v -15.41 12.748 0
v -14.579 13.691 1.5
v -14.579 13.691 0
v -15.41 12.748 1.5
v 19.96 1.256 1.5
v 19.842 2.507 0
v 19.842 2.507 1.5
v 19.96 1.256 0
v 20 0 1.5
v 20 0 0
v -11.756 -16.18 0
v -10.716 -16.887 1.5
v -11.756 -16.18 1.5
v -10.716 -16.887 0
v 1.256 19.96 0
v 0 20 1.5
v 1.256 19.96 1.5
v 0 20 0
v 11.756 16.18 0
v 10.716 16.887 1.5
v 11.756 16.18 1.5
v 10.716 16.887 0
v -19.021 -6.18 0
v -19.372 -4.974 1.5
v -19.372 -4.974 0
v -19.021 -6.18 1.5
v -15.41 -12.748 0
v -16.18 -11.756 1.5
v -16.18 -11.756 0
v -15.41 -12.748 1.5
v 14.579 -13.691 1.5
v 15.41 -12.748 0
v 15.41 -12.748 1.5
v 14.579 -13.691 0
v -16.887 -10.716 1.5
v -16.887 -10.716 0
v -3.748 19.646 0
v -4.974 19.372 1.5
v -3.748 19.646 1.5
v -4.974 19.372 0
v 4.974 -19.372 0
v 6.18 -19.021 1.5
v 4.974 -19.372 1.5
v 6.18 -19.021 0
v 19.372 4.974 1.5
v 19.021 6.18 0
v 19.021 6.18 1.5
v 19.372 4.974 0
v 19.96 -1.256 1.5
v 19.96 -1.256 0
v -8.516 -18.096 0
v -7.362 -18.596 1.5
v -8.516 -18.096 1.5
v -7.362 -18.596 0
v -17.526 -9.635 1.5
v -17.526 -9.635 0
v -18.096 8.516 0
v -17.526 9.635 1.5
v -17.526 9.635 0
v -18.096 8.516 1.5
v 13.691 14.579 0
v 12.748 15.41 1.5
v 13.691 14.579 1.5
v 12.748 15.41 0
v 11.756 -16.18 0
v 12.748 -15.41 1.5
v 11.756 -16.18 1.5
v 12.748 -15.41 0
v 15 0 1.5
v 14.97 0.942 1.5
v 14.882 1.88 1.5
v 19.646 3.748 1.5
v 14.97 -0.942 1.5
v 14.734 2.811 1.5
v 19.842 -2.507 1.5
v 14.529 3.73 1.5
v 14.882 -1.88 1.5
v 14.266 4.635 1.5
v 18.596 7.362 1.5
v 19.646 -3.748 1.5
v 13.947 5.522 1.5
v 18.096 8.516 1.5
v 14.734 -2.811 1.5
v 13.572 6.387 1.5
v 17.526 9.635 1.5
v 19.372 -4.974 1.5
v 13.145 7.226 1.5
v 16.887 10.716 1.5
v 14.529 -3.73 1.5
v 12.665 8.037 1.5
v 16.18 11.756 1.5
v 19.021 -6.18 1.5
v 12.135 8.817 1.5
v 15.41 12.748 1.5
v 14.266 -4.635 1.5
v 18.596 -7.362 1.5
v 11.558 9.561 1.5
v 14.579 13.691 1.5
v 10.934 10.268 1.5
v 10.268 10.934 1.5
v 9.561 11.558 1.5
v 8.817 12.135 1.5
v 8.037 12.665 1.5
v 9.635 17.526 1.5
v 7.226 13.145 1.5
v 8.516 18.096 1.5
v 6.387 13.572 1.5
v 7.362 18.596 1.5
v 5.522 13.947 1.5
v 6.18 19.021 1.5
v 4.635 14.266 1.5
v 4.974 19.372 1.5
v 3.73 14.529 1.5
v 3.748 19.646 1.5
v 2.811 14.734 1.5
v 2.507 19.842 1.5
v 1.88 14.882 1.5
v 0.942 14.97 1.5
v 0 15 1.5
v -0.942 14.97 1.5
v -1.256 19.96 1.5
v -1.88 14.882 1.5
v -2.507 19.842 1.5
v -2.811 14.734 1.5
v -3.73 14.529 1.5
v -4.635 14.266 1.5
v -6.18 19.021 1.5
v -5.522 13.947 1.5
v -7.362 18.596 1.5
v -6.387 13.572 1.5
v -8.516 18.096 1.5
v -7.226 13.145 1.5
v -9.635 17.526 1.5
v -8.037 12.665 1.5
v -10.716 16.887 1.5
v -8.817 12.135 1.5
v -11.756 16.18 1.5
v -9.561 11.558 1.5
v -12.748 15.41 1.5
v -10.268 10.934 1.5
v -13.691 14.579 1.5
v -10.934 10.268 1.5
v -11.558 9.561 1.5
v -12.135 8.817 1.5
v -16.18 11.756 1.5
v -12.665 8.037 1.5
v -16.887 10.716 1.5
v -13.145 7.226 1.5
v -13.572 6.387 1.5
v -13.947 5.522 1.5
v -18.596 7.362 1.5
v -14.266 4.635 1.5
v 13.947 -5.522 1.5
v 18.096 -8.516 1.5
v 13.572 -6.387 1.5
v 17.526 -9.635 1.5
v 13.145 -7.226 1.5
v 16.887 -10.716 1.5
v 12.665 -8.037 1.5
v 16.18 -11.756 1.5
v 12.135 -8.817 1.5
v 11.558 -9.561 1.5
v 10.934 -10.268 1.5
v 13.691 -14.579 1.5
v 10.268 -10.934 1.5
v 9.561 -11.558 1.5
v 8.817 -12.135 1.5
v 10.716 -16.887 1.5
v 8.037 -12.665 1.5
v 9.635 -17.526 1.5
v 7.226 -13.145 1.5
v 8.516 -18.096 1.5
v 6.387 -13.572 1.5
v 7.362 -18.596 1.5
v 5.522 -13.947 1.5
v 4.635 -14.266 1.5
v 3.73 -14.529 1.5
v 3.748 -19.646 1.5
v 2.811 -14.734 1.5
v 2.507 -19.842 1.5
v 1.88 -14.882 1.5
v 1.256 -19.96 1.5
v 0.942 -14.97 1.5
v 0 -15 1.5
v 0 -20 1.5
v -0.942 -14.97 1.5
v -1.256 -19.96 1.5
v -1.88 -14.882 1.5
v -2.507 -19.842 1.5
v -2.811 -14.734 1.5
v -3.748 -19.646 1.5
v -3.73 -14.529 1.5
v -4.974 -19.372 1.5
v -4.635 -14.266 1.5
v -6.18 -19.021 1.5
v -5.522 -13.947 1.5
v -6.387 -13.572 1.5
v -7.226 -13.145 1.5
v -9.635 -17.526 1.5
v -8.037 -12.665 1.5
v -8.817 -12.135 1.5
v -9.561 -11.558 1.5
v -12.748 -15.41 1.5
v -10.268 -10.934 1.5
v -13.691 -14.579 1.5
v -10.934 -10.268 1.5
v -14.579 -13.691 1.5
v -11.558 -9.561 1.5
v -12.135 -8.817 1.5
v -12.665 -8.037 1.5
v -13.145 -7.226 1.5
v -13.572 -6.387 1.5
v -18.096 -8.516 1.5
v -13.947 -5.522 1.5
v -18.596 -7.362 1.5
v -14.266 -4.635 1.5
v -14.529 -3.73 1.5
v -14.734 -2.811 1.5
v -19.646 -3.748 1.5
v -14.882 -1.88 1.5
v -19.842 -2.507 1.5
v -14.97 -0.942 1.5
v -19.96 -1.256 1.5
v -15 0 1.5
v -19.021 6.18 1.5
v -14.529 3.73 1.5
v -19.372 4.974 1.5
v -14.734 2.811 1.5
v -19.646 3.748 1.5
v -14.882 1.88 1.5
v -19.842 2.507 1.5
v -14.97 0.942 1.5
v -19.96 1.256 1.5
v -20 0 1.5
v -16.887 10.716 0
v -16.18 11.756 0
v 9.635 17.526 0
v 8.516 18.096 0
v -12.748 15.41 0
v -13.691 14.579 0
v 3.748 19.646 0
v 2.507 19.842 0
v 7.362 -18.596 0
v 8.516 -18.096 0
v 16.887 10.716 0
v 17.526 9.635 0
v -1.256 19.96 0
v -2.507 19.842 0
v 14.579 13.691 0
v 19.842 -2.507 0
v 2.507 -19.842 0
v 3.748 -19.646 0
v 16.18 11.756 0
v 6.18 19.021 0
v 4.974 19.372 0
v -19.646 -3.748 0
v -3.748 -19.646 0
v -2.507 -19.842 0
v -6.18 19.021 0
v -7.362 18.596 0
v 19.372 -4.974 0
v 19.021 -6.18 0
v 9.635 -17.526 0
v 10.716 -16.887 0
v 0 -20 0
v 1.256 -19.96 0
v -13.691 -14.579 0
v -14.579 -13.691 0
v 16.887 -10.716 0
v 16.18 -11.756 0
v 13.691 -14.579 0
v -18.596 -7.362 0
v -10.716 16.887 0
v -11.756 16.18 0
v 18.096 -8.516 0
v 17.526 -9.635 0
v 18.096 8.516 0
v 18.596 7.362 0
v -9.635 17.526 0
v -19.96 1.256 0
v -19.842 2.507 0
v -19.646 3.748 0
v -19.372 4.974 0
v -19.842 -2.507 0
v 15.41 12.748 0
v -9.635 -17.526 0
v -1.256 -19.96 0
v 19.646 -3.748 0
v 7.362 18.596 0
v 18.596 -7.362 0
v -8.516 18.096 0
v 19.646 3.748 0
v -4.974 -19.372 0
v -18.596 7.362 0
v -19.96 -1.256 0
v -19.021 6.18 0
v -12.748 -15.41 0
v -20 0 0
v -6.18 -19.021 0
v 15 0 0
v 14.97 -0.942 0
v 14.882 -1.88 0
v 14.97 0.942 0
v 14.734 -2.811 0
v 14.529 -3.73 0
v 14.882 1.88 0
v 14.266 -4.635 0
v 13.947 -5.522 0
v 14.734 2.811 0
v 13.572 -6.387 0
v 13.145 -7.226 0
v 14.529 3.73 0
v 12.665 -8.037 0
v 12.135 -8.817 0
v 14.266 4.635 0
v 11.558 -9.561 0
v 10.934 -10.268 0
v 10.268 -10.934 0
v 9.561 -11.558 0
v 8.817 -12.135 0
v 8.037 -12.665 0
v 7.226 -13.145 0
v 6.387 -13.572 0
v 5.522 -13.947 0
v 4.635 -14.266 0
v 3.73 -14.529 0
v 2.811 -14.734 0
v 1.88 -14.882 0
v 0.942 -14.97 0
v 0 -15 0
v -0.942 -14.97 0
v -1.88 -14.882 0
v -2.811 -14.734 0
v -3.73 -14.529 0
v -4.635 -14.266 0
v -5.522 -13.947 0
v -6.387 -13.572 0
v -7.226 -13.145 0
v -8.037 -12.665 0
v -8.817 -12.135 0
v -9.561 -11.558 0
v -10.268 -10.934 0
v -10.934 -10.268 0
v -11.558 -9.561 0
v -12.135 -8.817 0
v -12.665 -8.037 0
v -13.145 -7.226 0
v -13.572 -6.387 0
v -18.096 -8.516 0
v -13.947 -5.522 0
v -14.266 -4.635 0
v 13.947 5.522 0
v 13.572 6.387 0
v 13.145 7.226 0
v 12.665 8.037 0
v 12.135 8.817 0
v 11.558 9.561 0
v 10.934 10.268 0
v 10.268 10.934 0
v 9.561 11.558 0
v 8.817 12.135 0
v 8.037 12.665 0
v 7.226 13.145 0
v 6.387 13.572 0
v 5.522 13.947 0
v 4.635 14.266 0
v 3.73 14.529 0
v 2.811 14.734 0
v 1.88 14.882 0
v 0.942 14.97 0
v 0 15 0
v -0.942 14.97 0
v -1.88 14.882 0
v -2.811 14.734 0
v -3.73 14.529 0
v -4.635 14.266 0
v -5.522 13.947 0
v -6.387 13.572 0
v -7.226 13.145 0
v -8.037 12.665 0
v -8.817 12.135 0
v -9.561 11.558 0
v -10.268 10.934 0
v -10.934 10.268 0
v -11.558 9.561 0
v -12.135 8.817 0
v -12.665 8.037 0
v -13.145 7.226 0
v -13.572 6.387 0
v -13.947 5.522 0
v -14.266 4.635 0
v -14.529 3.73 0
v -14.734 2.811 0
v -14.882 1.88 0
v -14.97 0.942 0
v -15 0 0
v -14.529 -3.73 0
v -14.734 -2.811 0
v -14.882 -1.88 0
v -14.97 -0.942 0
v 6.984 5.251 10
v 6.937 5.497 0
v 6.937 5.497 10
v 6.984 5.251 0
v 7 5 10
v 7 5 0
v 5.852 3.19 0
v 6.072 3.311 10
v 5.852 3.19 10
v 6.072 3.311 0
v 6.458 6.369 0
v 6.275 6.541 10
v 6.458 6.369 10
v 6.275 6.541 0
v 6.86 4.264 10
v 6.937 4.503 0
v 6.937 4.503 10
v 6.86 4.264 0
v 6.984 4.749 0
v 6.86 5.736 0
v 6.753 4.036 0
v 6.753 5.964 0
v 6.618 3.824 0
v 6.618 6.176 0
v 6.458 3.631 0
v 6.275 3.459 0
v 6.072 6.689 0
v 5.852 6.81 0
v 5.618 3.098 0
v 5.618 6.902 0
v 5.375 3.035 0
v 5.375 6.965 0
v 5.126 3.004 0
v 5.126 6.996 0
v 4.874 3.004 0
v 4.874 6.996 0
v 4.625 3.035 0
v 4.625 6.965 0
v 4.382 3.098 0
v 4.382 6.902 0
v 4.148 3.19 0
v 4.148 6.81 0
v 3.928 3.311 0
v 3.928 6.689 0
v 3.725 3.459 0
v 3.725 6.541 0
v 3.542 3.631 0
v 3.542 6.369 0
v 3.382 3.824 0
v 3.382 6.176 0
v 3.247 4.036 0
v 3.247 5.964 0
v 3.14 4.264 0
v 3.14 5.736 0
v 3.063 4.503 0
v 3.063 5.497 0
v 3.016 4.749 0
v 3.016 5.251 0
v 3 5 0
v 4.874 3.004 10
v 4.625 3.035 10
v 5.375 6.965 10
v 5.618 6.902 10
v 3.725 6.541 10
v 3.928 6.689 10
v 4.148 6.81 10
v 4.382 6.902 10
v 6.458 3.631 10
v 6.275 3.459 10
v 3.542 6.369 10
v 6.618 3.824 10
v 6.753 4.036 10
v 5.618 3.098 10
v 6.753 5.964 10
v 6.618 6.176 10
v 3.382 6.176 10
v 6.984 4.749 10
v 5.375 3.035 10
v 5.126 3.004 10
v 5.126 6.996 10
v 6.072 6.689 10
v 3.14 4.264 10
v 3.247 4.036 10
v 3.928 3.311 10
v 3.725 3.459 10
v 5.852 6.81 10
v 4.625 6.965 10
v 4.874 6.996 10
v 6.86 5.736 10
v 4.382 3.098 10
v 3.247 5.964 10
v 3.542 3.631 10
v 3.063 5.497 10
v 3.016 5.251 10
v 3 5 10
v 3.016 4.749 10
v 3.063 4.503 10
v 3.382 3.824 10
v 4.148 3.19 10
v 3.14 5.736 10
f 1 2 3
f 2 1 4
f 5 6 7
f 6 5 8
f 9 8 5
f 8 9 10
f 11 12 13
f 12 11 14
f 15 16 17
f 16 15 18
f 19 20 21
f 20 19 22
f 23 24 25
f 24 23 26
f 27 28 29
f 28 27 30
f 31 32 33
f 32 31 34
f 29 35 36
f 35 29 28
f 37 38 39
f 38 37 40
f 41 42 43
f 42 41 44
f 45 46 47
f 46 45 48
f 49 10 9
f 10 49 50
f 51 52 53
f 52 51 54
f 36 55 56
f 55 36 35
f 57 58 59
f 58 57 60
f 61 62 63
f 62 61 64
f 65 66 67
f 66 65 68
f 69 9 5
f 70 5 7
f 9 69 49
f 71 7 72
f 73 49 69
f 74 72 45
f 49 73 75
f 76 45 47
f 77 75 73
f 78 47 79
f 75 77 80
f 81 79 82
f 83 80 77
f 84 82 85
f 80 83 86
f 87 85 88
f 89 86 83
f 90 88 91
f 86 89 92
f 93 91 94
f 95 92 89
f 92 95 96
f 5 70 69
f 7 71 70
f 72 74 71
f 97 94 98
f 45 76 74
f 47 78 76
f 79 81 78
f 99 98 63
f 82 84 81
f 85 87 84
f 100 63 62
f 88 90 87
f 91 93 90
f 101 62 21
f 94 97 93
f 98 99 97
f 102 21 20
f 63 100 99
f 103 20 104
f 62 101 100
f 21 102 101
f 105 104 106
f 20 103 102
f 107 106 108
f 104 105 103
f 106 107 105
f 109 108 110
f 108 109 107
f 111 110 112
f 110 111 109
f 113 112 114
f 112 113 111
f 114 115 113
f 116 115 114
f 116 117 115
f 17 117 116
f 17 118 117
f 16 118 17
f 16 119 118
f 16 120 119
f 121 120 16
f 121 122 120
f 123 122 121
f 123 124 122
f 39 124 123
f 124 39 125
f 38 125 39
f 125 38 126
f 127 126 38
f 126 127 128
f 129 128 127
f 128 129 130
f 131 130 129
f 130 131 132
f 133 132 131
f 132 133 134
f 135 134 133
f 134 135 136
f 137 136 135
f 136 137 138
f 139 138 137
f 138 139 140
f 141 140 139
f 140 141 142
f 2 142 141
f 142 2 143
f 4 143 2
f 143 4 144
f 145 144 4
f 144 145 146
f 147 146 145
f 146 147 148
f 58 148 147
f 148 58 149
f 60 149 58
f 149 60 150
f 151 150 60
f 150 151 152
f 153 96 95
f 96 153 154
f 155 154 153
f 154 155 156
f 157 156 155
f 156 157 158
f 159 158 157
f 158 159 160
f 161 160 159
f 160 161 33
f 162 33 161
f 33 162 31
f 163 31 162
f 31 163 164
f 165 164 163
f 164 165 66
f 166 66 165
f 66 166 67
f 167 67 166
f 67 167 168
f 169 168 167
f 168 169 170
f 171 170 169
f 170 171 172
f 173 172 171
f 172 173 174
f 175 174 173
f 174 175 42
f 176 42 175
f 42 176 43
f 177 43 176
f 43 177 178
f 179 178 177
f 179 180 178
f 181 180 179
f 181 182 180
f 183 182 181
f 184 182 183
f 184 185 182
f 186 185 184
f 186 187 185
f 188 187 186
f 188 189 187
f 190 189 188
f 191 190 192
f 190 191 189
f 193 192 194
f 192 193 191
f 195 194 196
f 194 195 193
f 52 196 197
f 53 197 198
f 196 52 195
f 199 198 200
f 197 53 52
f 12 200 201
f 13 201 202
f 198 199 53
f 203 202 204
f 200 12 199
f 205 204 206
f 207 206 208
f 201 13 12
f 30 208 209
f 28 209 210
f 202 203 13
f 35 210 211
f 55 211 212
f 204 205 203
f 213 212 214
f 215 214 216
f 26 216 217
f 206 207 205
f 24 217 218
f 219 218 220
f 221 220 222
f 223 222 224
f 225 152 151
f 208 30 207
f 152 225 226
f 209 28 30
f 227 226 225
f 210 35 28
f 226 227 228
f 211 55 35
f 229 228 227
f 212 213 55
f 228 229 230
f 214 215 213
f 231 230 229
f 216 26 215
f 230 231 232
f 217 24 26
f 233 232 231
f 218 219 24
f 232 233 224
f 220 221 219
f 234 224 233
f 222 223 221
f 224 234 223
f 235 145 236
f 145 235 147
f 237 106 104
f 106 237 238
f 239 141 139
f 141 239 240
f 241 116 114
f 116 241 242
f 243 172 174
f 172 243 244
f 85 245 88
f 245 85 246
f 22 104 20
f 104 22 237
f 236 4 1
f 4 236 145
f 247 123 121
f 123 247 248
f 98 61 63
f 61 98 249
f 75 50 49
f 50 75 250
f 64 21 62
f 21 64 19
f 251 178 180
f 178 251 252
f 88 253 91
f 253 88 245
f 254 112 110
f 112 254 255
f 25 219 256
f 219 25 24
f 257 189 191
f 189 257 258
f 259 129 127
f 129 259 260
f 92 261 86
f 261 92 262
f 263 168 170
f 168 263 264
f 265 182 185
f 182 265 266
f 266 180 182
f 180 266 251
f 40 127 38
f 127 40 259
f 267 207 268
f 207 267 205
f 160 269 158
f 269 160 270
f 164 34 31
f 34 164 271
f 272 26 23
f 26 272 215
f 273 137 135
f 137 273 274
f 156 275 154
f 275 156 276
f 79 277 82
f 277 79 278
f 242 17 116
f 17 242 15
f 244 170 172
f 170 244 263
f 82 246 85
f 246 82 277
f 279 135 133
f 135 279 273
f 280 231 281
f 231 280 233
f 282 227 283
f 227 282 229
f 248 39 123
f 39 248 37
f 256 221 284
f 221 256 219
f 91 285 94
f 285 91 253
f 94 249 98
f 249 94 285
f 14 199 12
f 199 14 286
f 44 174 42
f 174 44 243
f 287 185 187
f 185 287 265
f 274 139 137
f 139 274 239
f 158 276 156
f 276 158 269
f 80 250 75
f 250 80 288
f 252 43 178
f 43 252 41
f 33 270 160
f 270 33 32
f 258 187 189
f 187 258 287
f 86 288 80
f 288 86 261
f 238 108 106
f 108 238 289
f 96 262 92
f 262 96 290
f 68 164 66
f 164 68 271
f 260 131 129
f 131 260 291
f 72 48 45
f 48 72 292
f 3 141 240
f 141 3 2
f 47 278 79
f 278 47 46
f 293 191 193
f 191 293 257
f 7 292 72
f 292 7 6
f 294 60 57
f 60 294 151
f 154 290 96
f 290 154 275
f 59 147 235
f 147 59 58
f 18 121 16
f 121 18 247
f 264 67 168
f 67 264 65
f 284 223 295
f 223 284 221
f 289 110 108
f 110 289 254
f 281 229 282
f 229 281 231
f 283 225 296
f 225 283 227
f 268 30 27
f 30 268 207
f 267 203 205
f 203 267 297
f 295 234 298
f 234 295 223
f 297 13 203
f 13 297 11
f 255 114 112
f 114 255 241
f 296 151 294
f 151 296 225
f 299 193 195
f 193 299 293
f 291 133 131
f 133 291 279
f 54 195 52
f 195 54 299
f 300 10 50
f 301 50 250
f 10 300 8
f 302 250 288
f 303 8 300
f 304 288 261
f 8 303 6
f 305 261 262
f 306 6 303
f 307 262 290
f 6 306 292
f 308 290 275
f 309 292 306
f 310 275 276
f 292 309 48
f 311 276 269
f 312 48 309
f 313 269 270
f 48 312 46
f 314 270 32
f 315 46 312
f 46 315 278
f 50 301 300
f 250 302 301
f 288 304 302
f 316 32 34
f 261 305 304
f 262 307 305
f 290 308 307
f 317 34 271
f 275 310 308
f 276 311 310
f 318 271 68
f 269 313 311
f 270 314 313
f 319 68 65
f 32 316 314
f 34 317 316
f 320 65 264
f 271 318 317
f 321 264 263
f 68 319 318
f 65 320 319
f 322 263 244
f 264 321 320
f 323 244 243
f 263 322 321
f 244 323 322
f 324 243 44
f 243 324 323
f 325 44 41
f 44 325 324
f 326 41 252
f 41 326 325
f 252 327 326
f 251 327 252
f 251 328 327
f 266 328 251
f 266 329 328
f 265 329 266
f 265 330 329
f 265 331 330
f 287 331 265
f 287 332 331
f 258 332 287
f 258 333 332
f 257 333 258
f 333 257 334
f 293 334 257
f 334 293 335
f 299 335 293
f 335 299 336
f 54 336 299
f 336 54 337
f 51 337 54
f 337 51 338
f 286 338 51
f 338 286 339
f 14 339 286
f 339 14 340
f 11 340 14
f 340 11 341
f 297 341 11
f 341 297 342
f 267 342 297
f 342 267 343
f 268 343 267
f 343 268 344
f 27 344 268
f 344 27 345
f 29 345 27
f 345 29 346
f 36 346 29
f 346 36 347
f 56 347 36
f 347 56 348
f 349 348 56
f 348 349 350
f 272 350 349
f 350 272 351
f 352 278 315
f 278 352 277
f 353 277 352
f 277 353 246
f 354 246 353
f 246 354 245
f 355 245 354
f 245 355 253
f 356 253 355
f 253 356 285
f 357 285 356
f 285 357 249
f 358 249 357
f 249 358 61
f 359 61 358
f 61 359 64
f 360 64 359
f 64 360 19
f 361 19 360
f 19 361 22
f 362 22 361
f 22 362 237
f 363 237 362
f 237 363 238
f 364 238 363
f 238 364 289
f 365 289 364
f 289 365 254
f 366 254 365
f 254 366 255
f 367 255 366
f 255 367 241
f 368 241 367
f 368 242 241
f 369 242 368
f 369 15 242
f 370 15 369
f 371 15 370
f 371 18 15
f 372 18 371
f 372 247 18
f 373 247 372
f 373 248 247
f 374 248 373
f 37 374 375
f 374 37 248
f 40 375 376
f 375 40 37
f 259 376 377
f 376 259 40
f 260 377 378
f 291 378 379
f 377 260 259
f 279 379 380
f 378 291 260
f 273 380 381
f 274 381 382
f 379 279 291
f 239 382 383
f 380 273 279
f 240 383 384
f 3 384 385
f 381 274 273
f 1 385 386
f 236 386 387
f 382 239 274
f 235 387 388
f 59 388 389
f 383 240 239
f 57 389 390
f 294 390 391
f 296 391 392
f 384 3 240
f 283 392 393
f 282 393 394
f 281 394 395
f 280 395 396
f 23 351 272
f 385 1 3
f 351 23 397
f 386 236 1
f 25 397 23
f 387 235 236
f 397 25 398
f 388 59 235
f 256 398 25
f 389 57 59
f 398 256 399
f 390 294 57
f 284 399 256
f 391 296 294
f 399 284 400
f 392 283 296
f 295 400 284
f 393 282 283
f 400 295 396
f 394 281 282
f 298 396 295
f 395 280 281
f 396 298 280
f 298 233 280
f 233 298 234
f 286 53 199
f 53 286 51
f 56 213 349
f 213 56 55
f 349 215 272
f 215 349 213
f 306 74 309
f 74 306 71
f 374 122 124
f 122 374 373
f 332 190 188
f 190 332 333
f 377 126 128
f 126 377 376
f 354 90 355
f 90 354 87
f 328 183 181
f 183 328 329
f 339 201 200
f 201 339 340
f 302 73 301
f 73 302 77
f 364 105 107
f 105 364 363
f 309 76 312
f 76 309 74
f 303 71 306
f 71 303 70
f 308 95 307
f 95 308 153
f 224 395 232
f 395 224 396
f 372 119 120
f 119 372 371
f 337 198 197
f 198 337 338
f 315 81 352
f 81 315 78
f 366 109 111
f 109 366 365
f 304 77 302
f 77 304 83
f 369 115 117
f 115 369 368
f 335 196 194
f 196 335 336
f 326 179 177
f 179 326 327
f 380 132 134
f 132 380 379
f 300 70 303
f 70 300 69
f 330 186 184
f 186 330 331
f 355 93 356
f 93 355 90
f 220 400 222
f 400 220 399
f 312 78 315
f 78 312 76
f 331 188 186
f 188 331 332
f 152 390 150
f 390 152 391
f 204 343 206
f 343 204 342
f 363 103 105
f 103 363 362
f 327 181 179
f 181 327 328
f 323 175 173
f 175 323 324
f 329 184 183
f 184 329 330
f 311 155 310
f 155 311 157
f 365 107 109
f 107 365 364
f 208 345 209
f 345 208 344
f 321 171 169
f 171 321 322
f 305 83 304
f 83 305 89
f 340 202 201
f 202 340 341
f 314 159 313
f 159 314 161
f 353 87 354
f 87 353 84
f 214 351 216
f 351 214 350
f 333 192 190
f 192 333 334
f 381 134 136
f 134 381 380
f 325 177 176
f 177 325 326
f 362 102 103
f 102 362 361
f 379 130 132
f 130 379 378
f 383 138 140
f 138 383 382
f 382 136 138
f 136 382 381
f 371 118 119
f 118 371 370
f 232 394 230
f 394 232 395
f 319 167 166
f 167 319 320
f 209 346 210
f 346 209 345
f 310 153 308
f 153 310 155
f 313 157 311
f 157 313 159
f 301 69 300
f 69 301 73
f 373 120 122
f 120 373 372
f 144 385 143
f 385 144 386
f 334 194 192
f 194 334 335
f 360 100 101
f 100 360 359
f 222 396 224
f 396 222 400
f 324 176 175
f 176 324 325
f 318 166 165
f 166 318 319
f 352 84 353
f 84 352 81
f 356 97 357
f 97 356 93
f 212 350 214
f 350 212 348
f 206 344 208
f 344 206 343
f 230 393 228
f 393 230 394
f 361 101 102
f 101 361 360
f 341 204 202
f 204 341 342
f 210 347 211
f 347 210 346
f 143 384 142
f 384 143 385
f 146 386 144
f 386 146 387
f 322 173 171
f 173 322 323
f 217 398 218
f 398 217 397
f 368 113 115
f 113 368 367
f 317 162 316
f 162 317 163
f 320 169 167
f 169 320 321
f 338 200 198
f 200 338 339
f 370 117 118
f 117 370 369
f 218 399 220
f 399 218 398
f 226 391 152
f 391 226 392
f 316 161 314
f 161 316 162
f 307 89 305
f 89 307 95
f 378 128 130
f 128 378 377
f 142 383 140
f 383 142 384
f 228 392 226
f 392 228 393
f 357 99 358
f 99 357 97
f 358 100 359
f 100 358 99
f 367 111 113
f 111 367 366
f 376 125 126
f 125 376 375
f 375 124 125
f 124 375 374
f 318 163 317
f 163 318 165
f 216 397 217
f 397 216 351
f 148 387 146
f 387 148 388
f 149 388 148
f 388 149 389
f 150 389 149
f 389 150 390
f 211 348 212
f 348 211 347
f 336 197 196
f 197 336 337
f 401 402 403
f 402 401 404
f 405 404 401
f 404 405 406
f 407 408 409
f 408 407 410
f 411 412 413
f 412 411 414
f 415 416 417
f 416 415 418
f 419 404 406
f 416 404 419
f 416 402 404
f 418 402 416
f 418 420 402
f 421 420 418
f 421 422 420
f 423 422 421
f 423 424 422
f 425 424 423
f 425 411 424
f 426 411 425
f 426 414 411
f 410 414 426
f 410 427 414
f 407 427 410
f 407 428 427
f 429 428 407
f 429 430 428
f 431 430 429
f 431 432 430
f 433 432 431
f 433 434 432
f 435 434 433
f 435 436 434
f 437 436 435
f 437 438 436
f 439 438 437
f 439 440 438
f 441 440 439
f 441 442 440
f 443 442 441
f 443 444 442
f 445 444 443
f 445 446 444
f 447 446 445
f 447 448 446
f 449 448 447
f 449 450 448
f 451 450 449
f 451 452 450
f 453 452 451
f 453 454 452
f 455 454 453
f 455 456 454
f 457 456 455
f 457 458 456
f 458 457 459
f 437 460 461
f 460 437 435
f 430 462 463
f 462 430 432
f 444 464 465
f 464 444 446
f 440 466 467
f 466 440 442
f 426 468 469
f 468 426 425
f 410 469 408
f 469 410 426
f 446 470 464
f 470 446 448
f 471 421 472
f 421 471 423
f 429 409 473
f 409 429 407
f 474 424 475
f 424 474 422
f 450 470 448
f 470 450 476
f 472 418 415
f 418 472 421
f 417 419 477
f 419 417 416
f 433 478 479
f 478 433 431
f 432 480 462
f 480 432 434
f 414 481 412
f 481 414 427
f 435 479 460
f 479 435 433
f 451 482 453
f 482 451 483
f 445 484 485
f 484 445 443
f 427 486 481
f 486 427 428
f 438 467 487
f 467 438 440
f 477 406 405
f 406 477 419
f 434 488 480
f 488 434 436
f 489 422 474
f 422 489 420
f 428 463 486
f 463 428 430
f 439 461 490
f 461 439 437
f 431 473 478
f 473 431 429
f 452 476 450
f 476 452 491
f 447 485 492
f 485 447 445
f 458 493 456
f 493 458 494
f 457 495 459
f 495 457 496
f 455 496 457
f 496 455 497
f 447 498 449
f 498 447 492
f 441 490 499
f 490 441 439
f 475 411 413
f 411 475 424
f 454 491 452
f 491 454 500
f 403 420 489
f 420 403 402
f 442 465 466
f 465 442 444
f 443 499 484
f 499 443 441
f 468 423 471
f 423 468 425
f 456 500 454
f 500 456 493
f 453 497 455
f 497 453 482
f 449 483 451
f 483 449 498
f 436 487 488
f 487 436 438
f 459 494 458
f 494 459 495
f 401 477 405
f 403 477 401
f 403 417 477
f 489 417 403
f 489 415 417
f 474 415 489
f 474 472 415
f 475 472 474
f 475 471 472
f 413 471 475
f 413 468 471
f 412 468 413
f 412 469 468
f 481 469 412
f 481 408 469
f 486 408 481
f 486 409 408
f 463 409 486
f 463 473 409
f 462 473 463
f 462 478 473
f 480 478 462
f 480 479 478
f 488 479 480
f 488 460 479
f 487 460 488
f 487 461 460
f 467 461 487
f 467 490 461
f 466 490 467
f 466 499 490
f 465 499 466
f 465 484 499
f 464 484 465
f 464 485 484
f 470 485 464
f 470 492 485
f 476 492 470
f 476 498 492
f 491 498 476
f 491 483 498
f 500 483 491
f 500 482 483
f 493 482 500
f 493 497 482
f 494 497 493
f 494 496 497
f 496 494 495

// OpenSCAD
// Spacer Ring Parameters
module spacer_ring() {
    difference() {
        // Outer cylinder
        cylinder(h=1.5, r=20, $fn=100); // Reduced thickness from 2 to 1.5
        // Inner cylinder (hollow center)
        cylinder(h=1.5, r=15, $fn=100); // Reduced thickness from 2 to 1.5
    }
}

// Bolt Parameters
module bolt() {
    cylinder(h=10, r=2, $fn=50); // Increased length from shorter value to 10
}

// Generate Spacer Rings
translate([0, 0, 0]) spacer_ring(); // Layer 1

// Generate Bolts
translate([5, 5, 0]) bolt(); // Example position for bolt
